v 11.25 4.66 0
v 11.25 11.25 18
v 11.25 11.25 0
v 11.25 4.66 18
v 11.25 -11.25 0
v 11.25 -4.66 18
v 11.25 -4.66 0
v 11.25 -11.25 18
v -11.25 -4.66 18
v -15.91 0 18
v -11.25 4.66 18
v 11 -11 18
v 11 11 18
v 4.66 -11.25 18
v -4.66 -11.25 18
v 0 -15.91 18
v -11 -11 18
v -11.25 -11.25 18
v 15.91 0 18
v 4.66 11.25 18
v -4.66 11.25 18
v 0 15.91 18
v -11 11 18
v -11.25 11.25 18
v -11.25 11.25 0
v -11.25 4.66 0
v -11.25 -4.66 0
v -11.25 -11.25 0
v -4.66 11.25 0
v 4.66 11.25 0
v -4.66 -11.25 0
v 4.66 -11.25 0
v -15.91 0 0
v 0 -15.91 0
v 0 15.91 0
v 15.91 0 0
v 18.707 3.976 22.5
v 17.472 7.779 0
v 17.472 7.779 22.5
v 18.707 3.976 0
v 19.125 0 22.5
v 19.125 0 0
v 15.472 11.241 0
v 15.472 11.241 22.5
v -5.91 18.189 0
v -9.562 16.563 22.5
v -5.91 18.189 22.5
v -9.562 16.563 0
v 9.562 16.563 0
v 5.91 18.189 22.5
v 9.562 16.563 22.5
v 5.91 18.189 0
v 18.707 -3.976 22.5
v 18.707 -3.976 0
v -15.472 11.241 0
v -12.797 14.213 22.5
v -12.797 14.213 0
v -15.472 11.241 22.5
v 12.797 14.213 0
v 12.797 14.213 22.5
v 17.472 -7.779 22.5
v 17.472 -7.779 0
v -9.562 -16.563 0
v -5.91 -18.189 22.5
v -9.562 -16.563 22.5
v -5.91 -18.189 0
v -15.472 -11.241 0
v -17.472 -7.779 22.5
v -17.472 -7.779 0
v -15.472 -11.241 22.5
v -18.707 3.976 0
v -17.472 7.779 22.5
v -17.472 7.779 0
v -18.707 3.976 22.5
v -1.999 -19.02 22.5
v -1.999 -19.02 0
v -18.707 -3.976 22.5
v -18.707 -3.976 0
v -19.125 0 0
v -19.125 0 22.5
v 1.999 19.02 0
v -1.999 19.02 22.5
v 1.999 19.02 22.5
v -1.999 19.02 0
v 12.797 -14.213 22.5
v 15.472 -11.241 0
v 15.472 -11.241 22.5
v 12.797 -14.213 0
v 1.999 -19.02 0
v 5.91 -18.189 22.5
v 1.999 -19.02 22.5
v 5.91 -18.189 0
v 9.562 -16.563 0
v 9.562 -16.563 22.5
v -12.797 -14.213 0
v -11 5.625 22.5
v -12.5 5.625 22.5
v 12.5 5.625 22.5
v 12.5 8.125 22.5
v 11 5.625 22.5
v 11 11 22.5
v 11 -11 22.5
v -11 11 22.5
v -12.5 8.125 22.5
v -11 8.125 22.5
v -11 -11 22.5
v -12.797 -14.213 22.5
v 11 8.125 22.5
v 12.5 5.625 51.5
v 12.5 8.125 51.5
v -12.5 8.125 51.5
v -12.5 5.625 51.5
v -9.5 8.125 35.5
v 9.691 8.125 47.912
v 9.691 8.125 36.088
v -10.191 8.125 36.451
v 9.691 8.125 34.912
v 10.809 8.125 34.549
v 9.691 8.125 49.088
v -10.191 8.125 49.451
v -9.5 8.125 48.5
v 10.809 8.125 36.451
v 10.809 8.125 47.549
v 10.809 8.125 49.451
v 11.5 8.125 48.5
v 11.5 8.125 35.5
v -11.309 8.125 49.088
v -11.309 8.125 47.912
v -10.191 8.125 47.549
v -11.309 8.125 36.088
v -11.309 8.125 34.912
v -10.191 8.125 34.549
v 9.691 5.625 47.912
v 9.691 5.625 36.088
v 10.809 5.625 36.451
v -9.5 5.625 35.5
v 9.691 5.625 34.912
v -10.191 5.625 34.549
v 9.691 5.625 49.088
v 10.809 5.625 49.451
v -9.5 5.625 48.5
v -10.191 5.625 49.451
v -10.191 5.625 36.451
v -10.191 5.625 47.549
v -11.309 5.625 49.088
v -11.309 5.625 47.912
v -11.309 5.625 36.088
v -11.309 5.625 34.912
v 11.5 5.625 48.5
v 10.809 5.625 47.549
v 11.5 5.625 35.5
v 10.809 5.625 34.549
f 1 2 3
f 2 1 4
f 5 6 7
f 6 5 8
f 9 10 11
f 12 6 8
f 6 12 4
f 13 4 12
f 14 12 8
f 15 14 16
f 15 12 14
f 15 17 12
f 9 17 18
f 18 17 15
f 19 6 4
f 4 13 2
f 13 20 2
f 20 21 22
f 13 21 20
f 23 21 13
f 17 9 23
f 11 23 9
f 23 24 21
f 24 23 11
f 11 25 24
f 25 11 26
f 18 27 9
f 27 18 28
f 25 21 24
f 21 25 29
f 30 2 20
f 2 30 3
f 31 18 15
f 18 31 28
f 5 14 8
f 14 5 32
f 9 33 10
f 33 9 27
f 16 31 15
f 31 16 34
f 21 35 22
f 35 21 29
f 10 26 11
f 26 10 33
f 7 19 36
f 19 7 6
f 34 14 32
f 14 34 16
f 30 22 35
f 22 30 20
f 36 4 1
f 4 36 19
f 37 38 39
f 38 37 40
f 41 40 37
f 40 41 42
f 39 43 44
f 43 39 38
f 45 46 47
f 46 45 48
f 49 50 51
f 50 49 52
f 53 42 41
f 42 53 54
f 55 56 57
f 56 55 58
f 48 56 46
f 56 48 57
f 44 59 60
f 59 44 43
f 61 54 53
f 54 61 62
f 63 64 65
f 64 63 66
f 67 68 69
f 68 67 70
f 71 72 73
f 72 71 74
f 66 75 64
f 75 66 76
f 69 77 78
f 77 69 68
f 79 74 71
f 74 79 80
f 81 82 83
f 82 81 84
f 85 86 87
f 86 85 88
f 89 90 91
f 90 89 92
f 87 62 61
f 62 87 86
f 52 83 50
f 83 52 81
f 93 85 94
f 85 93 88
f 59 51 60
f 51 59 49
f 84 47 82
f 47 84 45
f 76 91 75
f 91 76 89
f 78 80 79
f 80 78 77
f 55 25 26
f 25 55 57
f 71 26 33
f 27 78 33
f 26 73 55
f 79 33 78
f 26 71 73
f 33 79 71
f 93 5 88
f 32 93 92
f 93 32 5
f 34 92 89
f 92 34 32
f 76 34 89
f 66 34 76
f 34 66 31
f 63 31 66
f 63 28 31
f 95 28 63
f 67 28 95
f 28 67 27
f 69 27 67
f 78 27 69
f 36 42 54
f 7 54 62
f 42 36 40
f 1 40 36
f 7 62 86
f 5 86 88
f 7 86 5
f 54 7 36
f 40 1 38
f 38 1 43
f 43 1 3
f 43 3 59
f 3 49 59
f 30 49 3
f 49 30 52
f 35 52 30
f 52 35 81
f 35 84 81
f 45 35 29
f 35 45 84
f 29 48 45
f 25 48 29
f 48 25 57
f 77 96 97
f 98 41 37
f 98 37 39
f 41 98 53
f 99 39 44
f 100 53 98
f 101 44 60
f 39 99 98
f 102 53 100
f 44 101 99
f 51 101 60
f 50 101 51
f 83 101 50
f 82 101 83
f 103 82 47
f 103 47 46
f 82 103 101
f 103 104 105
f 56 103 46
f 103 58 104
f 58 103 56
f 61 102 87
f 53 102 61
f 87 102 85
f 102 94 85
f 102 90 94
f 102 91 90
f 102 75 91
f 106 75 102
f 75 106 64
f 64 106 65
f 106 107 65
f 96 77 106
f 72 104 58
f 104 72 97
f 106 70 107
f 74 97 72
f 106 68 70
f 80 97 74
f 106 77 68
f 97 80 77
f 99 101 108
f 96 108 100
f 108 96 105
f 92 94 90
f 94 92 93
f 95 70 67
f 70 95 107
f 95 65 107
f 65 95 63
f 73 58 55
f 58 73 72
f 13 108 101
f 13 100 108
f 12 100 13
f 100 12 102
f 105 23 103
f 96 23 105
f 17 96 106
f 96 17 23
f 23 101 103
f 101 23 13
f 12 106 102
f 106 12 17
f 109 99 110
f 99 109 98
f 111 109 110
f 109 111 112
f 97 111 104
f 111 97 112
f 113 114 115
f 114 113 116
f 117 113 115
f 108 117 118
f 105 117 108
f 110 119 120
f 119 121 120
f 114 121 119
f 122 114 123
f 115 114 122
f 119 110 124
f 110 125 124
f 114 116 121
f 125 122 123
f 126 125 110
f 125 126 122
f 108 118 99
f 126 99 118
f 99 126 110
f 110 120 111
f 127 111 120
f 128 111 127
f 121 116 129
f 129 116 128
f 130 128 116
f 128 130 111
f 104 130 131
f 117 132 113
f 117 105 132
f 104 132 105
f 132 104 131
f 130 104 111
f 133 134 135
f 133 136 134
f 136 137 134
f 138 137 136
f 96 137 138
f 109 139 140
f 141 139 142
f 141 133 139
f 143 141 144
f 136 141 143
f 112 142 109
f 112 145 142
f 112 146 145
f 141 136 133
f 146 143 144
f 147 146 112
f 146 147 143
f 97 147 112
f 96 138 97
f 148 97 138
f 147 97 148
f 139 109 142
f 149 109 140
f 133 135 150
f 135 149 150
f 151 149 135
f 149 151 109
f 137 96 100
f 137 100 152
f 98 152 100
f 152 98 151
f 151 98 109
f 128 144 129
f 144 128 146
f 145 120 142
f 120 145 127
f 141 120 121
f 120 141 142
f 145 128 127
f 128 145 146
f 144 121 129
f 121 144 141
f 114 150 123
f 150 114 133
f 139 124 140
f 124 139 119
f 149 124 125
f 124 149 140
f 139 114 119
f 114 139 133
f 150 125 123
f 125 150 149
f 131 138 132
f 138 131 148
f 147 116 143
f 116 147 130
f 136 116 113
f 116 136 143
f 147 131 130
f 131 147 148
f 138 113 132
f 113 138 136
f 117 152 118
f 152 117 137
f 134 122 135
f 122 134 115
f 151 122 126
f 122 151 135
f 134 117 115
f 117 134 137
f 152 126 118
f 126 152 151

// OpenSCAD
wall  = 2.5;
tower_width = 22;
margin = 0.5;
tower_width_with_margin = tower_width + margin;
height = 20;

upper_extra_length = 1;
lower_extra_length = 3;

cam_platform = 25;
no_of_star_tips = 8;

hole_diameter = 2;
hole_x  =  2;
hole_y  =  2;
hole_y2 = 15;

module star() {
    for (n = [0:1:no_of_star_tips]) {
        rotate( [0, 0, n*(360/no_of_star_tips)] )
            translate([ -0.5*tower_width_with_margin, -0.5*tower_width_with_margin, 0 ] )
                cube( [ tower_width_with_margin, tower_width_with_margin, tower_width_with_margin ] );
    }
}

module cam_holder() {
    difference() {
        cube([cam_platform, wall, cam_platform+lower_extra_length+upper_extra_length]);

        translate([hole_x, wall+1, cam_platform-hole_y+lower_extra_length]) rotate([90, 0, 0])
            cylinder( d = hole_diameter, h = wall+2 );

        translate([cam_platform-hole_x, wall+1, cam_platform-hole_y+lower_extra_length]) rotate([90, 0, 0])
            cylinder( d = hole_diameter, h = wall+2 );

        translate([hole_x, wall+1, cam_platform-hole_y2+lower_extra_length]) rotate([90, 0, 0])
            cylinder( d = hole_diameter, h = wall+2 );

        translate([cam_platform-hole_x, wall+1, cam_platform-hole_y2+lower_extra_length]) rotate([90, 0, 0])
            cylinder( d = hole_diameter, h = wall+2 );
    }
}

module cap2() {
    difference() {
        cylinder( d = 1.7*tower_width_with_margin, h = tower_width_with_margin);
        //star that enables different angles of rotation of the cam around the z-axis
        translate([0, 0, -0.2*tower_width_with_margin]) star();

        translate([ (-1/2)*tower_width, (-1/2)*tower_width, (1/2)*tower_width_with_margin])
            cube([tower_width, tower_width, tower_width]);
    }

    translate([ (-1/2)*cam_platform, (1/4)*tower_width_with_margin, tower_width_with_margin]) rotate([0, 0, 0]) cam_holder();

}

cap2();
